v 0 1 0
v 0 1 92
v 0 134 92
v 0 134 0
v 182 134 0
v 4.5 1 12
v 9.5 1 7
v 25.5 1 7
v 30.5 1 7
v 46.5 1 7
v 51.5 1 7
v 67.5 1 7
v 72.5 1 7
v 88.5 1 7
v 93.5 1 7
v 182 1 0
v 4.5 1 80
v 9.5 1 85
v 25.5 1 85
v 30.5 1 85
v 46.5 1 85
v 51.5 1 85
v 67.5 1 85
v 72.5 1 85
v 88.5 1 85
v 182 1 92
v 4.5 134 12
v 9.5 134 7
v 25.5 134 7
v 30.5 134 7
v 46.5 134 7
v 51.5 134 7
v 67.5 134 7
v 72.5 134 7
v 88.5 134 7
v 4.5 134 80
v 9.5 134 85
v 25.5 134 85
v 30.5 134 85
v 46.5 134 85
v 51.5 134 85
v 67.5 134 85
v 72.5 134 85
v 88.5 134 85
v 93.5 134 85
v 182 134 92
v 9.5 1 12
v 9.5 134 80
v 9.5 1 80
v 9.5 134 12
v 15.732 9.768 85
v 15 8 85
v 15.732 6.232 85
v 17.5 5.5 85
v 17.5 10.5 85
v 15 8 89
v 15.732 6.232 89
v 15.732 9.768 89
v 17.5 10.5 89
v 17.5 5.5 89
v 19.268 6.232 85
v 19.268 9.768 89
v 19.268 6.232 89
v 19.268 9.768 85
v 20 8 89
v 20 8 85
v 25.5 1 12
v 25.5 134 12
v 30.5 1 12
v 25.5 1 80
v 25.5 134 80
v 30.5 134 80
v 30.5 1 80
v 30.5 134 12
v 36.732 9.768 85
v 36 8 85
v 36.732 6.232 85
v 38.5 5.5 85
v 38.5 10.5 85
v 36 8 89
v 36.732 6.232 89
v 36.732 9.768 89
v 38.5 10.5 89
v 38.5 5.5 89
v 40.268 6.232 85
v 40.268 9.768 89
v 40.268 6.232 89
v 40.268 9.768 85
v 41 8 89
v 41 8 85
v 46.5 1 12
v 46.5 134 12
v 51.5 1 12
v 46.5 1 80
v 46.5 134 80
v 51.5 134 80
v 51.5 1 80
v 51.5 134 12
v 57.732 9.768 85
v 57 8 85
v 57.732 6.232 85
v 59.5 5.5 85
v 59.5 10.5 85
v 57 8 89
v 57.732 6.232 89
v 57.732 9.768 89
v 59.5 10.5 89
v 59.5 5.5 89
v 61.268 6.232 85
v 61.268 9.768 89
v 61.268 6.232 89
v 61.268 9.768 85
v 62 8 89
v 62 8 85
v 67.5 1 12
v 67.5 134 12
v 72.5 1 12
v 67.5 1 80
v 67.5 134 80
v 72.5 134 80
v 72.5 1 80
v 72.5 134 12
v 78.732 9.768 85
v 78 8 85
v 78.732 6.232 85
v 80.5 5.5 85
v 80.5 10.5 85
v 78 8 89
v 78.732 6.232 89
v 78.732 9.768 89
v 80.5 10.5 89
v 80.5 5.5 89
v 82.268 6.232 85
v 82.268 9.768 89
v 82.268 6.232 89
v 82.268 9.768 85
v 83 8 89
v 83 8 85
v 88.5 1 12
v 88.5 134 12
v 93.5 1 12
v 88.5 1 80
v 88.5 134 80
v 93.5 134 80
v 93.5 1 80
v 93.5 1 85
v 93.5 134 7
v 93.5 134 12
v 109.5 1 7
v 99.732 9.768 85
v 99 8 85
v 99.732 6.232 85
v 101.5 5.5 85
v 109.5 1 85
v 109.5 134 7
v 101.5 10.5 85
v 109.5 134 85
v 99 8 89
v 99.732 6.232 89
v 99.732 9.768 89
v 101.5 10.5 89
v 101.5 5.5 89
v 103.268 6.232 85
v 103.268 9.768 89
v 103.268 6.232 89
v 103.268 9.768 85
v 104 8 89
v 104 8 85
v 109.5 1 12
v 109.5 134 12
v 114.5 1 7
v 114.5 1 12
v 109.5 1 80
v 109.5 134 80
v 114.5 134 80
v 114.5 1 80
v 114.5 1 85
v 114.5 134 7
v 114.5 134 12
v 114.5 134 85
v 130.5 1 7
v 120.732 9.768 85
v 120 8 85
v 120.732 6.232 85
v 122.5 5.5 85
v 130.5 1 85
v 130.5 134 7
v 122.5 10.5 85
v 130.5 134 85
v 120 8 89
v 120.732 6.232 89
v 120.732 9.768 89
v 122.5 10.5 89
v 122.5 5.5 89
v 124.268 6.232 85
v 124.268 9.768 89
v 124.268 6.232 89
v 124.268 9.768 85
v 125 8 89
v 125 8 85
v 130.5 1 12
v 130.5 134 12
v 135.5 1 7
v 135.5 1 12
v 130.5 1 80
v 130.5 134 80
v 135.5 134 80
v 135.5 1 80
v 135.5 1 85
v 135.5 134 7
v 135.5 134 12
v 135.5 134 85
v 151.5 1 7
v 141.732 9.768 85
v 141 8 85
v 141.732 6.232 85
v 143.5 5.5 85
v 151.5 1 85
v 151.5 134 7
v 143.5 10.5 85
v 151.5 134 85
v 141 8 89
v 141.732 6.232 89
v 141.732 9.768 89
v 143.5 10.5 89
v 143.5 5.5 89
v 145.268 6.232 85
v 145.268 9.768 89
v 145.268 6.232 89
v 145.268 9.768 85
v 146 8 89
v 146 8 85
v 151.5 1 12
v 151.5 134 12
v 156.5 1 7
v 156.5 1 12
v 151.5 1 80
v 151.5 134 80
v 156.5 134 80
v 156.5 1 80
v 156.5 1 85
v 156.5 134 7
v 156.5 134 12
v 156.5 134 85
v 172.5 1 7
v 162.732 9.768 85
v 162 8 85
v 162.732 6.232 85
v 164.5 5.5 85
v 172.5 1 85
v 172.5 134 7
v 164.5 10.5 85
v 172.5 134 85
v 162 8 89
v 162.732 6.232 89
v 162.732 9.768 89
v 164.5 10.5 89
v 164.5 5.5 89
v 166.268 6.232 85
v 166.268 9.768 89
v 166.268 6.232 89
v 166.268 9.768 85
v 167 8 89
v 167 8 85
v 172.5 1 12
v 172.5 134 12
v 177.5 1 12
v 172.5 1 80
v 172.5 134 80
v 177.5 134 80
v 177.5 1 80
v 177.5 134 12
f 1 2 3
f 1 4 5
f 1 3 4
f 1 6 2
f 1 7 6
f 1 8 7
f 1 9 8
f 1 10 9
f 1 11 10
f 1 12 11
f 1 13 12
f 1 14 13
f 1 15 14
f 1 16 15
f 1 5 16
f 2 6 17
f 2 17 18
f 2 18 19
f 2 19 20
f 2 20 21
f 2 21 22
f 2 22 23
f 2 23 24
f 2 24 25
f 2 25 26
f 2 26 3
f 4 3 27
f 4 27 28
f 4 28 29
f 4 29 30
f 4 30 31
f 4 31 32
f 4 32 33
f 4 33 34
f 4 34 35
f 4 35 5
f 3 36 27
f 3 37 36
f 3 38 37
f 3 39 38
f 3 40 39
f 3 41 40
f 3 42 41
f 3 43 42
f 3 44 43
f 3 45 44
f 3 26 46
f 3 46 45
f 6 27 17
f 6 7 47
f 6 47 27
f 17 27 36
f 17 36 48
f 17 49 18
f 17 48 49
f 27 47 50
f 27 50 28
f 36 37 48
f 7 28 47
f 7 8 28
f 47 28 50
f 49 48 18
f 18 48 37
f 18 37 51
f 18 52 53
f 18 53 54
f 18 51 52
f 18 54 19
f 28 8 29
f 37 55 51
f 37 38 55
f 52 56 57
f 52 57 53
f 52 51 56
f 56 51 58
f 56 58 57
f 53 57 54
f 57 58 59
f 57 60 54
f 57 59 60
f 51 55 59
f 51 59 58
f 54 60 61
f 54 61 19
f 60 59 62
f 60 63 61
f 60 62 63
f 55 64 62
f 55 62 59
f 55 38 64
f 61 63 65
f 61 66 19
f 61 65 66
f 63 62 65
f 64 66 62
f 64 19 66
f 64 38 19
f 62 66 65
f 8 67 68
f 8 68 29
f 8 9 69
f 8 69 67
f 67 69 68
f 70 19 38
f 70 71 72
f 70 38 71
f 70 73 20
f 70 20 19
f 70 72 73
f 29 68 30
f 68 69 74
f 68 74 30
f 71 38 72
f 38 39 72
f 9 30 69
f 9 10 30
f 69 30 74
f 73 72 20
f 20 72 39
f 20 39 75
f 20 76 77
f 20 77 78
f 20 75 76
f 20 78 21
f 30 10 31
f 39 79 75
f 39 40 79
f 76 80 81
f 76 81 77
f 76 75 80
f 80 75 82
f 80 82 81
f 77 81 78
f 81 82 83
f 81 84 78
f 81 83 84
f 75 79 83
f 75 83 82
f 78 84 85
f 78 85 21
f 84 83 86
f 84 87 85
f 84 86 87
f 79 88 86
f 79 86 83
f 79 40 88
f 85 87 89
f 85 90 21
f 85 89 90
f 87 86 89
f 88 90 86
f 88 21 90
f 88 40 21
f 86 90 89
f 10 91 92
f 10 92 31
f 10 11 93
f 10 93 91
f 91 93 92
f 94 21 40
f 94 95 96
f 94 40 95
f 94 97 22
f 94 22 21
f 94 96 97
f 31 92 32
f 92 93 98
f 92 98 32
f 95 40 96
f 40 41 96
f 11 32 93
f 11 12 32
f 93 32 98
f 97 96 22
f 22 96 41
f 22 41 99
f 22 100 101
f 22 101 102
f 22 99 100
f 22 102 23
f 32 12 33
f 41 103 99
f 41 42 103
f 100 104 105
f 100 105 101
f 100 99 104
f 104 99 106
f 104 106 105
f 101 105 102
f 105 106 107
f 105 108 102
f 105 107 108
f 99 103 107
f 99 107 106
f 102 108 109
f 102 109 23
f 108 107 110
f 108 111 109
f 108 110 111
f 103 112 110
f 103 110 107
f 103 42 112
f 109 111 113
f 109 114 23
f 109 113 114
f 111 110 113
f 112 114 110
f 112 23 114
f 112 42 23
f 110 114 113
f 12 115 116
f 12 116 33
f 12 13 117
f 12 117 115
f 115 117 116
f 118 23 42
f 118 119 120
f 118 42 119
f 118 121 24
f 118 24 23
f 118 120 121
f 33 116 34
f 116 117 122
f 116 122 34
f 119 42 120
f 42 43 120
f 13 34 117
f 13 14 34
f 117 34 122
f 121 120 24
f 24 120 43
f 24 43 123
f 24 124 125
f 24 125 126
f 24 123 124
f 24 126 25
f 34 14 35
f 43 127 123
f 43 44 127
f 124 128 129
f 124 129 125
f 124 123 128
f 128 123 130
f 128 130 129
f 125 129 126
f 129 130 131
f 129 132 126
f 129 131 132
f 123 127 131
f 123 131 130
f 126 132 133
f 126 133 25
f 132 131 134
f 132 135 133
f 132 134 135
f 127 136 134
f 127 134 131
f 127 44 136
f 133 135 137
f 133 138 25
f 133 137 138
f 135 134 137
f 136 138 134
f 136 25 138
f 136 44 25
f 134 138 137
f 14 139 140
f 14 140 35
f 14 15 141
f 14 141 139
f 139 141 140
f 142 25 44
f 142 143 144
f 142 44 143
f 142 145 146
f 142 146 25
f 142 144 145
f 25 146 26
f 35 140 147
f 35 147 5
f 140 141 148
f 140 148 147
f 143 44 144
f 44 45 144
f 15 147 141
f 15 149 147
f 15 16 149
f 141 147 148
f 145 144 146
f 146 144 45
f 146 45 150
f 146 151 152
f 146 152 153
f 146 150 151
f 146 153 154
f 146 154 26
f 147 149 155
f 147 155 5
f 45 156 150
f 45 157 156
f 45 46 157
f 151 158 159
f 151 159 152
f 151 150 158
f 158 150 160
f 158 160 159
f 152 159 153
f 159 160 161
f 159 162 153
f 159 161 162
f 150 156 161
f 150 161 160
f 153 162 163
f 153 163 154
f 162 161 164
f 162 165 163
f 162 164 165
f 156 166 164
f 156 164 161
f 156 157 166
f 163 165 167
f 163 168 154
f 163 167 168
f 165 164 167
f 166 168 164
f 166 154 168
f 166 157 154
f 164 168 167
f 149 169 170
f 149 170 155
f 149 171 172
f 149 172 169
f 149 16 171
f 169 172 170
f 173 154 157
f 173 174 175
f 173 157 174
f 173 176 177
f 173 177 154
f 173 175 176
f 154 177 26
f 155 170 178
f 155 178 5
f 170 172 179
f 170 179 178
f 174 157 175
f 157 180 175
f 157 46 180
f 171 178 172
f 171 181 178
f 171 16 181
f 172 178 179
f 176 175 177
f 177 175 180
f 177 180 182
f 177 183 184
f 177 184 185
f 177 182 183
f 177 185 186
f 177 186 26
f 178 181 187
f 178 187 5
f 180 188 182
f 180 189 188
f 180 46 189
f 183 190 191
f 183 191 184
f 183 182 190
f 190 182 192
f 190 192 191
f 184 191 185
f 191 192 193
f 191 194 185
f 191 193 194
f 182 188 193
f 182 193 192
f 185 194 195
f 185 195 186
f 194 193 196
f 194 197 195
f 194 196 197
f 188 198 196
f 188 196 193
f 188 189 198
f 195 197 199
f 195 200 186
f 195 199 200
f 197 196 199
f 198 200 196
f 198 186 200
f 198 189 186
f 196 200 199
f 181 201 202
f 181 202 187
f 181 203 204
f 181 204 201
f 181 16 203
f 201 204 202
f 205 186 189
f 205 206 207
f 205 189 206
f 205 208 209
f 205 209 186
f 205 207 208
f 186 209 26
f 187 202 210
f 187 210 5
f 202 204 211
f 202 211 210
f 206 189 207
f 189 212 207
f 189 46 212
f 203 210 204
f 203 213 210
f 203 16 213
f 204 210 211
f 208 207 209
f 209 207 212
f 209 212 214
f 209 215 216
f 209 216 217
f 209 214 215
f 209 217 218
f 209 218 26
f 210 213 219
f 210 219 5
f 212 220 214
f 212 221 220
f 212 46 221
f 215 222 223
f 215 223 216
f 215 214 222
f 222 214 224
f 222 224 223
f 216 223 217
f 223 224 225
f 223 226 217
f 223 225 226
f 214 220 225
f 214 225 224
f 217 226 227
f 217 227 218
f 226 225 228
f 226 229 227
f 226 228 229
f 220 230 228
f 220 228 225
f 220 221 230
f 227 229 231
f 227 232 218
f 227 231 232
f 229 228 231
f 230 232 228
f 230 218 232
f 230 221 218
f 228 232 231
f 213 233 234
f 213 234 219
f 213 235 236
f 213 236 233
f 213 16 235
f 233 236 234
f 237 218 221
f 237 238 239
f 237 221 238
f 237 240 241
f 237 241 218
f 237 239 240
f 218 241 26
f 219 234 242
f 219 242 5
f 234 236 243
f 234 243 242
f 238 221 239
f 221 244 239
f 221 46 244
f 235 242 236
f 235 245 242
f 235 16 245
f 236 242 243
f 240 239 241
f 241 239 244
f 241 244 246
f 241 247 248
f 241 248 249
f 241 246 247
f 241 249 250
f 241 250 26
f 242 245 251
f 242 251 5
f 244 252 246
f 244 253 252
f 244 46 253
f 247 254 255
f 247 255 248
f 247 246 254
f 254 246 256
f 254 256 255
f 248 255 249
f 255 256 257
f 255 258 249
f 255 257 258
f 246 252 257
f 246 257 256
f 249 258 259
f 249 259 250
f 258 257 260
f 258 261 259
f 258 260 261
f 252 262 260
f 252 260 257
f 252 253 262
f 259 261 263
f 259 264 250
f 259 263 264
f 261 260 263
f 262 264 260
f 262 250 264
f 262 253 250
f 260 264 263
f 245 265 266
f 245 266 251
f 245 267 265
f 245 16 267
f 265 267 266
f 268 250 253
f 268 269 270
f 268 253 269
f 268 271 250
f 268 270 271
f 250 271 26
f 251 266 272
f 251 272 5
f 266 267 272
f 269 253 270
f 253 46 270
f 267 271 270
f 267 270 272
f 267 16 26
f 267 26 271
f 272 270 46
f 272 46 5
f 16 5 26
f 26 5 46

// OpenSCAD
carrier_x = 78;
carrier_y = 134;
carrier_z = 16;
c_spacer = 5;
c_rib    = 5;
c_notch  = 8;
c_notchsize = 5;
wallsize = 7;
walloffset = wallsize - c_notchsize + (c_notchsize / 2);
box_x = carrier_x + (2 * wallsize);
box_y = carrier_y - 1;
box_z = (carrier_z * 8) + (c_spacer * 8) + (2 * wallsize);

module drive()
{
    translate([carrier_z,0,0]) rotate([0,-90,0]) cube([carrier_x,carrier_y,carrier_z]);
    translate([c_notch,carrier_z/2,carrier_x]) cylinder(r=c_notchsize/2,h=4);
}

module drive_array()
{
  ribcutout = carrier_x - (2 * c_rib);
  for (i = [0 : 1 : 7]){
      xpos = (c_spacer * i) + (carrier_z * i) + c_spacer;
      translate([xpos,0,0])  drive();
      translate([xpos-5,0,c_rib]) cube([c_rib,carrier_y,ribcutout]);
      }
 xpos = (c_spacer * 9) + (carrier_z * 8); 
 translate([xpos-5,0,c_rib]) cube([c_rib,carrier_y,ribcutout]);     
}


module gcase()
{
    difference(){
      translate([0,carrier_y,0]) rotate([0,-90,-180]) cube([box_x,box_y,box_z]);
      translate([walloffset,0,walloffset+c_notchsize/2]) drive_array();
      }
}

gcase();
//drive_array();
